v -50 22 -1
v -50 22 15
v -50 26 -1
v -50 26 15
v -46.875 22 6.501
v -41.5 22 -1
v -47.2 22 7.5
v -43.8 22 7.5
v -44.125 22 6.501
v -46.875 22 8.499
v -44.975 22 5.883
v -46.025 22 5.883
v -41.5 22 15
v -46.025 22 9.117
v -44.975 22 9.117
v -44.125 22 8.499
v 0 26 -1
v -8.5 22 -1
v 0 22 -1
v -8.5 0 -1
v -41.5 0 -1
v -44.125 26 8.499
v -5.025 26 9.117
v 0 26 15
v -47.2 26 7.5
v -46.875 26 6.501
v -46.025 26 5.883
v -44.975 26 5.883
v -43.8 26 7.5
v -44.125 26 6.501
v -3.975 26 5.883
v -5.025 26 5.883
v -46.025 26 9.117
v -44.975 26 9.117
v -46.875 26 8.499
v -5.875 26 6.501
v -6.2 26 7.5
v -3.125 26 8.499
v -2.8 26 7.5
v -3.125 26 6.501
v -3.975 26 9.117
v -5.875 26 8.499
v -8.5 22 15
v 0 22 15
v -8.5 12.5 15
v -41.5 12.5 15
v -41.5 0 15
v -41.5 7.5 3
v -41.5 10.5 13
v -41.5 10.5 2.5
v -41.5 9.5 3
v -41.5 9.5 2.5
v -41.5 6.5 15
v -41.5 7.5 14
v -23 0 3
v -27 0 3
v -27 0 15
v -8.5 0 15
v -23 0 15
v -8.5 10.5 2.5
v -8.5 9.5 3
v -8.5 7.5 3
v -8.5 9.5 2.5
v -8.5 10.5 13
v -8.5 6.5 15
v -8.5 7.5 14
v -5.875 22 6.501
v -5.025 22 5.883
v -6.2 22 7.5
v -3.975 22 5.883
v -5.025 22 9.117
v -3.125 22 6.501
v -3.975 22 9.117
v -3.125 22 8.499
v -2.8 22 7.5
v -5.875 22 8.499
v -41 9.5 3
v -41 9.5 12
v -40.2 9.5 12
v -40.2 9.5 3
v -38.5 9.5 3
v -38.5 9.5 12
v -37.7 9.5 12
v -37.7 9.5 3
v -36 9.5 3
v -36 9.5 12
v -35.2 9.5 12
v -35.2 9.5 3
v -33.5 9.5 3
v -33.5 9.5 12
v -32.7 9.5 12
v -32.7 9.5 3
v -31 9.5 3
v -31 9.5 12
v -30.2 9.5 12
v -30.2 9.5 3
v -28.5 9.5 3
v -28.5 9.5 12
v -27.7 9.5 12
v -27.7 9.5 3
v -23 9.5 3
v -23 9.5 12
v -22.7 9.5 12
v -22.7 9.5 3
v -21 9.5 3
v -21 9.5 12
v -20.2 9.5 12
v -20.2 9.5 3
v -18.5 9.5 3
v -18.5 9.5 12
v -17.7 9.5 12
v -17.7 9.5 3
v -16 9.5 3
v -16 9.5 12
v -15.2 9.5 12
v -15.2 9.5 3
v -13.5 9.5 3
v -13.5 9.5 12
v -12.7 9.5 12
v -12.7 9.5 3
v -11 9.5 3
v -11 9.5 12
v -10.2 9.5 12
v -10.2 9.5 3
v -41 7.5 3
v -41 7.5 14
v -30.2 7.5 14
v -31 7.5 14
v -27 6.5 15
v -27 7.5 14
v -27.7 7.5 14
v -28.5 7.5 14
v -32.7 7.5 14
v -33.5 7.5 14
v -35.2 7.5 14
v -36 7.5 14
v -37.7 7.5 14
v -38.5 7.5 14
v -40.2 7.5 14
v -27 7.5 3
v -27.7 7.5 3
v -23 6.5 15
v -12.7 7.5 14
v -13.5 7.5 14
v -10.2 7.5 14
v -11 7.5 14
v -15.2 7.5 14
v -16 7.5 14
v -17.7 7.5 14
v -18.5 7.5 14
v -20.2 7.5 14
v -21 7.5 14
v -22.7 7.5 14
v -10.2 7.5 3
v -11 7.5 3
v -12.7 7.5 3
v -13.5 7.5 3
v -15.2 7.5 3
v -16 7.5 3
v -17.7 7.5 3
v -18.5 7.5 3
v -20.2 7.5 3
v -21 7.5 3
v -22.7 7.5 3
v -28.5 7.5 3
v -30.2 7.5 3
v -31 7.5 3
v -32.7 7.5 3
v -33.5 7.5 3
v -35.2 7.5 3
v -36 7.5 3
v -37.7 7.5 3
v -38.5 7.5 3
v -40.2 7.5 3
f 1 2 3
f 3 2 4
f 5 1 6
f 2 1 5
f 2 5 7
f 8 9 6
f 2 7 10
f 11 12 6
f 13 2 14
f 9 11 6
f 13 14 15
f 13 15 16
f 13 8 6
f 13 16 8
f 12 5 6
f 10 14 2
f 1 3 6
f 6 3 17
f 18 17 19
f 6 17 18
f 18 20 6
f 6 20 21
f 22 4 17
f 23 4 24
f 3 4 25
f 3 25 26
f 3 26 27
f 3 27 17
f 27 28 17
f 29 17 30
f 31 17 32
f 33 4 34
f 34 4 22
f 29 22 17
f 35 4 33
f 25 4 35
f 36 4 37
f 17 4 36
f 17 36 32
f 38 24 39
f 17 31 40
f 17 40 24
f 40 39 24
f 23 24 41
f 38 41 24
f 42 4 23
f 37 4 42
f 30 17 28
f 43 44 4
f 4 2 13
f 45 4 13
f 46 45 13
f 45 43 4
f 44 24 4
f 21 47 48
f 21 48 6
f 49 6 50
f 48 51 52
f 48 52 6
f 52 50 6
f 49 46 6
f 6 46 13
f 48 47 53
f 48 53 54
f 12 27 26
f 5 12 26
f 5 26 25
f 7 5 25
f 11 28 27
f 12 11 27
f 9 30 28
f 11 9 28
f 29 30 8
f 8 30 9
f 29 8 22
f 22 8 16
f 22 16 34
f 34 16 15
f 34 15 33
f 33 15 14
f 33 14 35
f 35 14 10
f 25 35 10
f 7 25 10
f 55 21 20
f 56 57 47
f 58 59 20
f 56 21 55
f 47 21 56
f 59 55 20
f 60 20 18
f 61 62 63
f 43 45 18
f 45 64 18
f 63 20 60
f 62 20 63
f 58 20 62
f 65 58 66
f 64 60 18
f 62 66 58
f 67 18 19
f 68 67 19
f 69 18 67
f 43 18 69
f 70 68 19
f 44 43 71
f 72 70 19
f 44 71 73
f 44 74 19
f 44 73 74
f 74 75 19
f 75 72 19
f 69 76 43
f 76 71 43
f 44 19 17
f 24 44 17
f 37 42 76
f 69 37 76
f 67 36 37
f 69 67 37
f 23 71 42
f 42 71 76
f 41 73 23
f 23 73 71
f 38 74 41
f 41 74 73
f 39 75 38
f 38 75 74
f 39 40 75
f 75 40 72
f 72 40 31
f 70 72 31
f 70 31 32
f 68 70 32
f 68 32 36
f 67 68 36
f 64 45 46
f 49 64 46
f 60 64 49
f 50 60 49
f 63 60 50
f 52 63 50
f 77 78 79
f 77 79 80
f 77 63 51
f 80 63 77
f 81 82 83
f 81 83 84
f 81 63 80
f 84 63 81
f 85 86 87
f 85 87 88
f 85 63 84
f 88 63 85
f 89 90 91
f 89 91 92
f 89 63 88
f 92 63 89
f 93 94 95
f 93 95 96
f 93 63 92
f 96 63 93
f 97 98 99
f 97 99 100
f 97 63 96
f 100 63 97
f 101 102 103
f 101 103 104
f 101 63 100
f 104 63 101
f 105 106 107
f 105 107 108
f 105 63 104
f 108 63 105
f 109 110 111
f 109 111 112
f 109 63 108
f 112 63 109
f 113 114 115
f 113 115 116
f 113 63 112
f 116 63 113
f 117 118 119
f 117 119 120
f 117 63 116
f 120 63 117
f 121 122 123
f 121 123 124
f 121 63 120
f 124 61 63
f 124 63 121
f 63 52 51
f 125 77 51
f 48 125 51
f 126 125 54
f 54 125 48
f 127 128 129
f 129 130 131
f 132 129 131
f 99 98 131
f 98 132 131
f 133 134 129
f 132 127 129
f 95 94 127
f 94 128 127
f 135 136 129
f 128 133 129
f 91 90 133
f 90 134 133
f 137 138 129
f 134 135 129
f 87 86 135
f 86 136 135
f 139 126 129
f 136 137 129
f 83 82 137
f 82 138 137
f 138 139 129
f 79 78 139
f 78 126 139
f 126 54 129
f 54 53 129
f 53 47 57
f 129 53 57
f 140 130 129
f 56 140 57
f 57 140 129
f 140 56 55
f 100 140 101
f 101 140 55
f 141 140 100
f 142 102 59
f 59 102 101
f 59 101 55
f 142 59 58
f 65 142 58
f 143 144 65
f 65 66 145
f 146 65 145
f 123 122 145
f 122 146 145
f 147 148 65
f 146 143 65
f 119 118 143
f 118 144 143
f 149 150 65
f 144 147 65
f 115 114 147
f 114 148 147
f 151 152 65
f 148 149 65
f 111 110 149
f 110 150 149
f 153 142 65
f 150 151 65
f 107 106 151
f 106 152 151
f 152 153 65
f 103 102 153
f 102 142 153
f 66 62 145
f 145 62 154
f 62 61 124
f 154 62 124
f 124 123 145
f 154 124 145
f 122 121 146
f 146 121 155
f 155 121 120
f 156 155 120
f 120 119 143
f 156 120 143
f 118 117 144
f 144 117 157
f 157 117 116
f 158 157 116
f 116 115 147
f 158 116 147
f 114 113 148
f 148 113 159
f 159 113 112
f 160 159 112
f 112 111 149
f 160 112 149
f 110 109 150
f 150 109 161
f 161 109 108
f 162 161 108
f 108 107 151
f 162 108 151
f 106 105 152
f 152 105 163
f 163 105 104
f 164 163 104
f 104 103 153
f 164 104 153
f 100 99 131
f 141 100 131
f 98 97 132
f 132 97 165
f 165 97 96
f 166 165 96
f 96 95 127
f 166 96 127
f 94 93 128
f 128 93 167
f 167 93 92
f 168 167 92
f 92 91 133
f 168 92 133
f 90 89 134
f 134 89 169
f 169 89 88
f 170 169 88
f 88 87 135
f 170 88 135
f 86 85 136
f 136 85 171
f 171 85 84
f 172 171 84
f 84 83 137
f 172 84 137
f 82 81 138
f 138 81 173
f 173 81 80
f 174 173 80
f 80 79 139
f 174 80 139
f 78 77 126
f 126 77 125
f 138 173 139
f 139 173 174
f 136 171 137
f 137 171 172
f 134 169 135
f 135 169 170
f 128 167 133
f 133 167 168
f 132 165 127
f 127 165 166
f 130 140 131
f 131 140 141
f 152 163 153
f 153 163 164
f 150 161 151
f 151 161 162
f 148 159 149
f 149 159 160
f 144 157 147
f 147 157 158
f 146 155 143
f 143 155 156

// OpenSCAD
// file: ../configuration.scad
x_rod_distance = 45;

// Select your belt type ******************************************************

//T2.5
belt_tooth_distance = 2.5;
belt_tooth_ratio = 0.5;

//T5 (strongly discouraged)
//belt_tooth_distance = 5;
//belt_tooth_ratio = 0.75;

//HTD3
//belt_tooth_distance = 3;
//belt_tooth_ratio = 0.75;

//MXL
//belt_tooth_distance = 2.032;
//belt_tooth_ratio = 0.64;

// Select your hot-end mount ******************************************************

// 0 = none; 1 = groove-mount (J-head/MakerGear etc.)
hotend_mount = 1;

hotend_groovemount_depth = 5;
hotend_groovemount_diameter = 11.05;
// main file
// PRUSA iteration3
// Y belt holder
// GNU GPL v3
// Josef Průša <iam@josefprusa.cz> and contributors
// http://www.reprap.org/wiki/Prusa_Mendel
// http://prusamendel.org

include <../configuration.scad>

module belt_holder_base(){
 translate([-33-8.5,0,-1]) cube([33,15,16]); 
 translate([-33-8.5,11,-1]) cube([33,15,16]);
 translate([-50,22,-1]) cube([50,4,16]);	
}

module belt_holder_beltcut(){
 position_tweak=-0.2;
 // Belt slit
 translate([-66,-0.5+10,belt_tooth_distance]) cube([67,1,15]);
 // Smooth insert cutout
 translate([-66,-0.5+10,12]) rotate([45,0,0]) cube([67,15,15]);
 // Individual teeth
 for ( i = [0 : 23] ){
  translate([0-i*belt_tooth_distance+position_tweak,-0.5+8,3]) cube([1.7,3,15]);
 }
 // Middle opening
 translate([-2-25,-1,3]) cube([4,11,15]);	
}

module belt_holder_holes(){
 translate([-4.5,0,7.5]) rotate([-90,0,0]) cylinder(h=30, r=1.7, $fn=10);
 translate([-45.5,0,7.5]) rotate([-90,0,0]) cylinder(h=30, r=1.7, $fn=10);
}

// Final part
module belt_holder(){
 difference(){
  belt_holder_base();
  belt_holder_beltcut();
  belt_holder_holes();
 }
}

belt_holder();
